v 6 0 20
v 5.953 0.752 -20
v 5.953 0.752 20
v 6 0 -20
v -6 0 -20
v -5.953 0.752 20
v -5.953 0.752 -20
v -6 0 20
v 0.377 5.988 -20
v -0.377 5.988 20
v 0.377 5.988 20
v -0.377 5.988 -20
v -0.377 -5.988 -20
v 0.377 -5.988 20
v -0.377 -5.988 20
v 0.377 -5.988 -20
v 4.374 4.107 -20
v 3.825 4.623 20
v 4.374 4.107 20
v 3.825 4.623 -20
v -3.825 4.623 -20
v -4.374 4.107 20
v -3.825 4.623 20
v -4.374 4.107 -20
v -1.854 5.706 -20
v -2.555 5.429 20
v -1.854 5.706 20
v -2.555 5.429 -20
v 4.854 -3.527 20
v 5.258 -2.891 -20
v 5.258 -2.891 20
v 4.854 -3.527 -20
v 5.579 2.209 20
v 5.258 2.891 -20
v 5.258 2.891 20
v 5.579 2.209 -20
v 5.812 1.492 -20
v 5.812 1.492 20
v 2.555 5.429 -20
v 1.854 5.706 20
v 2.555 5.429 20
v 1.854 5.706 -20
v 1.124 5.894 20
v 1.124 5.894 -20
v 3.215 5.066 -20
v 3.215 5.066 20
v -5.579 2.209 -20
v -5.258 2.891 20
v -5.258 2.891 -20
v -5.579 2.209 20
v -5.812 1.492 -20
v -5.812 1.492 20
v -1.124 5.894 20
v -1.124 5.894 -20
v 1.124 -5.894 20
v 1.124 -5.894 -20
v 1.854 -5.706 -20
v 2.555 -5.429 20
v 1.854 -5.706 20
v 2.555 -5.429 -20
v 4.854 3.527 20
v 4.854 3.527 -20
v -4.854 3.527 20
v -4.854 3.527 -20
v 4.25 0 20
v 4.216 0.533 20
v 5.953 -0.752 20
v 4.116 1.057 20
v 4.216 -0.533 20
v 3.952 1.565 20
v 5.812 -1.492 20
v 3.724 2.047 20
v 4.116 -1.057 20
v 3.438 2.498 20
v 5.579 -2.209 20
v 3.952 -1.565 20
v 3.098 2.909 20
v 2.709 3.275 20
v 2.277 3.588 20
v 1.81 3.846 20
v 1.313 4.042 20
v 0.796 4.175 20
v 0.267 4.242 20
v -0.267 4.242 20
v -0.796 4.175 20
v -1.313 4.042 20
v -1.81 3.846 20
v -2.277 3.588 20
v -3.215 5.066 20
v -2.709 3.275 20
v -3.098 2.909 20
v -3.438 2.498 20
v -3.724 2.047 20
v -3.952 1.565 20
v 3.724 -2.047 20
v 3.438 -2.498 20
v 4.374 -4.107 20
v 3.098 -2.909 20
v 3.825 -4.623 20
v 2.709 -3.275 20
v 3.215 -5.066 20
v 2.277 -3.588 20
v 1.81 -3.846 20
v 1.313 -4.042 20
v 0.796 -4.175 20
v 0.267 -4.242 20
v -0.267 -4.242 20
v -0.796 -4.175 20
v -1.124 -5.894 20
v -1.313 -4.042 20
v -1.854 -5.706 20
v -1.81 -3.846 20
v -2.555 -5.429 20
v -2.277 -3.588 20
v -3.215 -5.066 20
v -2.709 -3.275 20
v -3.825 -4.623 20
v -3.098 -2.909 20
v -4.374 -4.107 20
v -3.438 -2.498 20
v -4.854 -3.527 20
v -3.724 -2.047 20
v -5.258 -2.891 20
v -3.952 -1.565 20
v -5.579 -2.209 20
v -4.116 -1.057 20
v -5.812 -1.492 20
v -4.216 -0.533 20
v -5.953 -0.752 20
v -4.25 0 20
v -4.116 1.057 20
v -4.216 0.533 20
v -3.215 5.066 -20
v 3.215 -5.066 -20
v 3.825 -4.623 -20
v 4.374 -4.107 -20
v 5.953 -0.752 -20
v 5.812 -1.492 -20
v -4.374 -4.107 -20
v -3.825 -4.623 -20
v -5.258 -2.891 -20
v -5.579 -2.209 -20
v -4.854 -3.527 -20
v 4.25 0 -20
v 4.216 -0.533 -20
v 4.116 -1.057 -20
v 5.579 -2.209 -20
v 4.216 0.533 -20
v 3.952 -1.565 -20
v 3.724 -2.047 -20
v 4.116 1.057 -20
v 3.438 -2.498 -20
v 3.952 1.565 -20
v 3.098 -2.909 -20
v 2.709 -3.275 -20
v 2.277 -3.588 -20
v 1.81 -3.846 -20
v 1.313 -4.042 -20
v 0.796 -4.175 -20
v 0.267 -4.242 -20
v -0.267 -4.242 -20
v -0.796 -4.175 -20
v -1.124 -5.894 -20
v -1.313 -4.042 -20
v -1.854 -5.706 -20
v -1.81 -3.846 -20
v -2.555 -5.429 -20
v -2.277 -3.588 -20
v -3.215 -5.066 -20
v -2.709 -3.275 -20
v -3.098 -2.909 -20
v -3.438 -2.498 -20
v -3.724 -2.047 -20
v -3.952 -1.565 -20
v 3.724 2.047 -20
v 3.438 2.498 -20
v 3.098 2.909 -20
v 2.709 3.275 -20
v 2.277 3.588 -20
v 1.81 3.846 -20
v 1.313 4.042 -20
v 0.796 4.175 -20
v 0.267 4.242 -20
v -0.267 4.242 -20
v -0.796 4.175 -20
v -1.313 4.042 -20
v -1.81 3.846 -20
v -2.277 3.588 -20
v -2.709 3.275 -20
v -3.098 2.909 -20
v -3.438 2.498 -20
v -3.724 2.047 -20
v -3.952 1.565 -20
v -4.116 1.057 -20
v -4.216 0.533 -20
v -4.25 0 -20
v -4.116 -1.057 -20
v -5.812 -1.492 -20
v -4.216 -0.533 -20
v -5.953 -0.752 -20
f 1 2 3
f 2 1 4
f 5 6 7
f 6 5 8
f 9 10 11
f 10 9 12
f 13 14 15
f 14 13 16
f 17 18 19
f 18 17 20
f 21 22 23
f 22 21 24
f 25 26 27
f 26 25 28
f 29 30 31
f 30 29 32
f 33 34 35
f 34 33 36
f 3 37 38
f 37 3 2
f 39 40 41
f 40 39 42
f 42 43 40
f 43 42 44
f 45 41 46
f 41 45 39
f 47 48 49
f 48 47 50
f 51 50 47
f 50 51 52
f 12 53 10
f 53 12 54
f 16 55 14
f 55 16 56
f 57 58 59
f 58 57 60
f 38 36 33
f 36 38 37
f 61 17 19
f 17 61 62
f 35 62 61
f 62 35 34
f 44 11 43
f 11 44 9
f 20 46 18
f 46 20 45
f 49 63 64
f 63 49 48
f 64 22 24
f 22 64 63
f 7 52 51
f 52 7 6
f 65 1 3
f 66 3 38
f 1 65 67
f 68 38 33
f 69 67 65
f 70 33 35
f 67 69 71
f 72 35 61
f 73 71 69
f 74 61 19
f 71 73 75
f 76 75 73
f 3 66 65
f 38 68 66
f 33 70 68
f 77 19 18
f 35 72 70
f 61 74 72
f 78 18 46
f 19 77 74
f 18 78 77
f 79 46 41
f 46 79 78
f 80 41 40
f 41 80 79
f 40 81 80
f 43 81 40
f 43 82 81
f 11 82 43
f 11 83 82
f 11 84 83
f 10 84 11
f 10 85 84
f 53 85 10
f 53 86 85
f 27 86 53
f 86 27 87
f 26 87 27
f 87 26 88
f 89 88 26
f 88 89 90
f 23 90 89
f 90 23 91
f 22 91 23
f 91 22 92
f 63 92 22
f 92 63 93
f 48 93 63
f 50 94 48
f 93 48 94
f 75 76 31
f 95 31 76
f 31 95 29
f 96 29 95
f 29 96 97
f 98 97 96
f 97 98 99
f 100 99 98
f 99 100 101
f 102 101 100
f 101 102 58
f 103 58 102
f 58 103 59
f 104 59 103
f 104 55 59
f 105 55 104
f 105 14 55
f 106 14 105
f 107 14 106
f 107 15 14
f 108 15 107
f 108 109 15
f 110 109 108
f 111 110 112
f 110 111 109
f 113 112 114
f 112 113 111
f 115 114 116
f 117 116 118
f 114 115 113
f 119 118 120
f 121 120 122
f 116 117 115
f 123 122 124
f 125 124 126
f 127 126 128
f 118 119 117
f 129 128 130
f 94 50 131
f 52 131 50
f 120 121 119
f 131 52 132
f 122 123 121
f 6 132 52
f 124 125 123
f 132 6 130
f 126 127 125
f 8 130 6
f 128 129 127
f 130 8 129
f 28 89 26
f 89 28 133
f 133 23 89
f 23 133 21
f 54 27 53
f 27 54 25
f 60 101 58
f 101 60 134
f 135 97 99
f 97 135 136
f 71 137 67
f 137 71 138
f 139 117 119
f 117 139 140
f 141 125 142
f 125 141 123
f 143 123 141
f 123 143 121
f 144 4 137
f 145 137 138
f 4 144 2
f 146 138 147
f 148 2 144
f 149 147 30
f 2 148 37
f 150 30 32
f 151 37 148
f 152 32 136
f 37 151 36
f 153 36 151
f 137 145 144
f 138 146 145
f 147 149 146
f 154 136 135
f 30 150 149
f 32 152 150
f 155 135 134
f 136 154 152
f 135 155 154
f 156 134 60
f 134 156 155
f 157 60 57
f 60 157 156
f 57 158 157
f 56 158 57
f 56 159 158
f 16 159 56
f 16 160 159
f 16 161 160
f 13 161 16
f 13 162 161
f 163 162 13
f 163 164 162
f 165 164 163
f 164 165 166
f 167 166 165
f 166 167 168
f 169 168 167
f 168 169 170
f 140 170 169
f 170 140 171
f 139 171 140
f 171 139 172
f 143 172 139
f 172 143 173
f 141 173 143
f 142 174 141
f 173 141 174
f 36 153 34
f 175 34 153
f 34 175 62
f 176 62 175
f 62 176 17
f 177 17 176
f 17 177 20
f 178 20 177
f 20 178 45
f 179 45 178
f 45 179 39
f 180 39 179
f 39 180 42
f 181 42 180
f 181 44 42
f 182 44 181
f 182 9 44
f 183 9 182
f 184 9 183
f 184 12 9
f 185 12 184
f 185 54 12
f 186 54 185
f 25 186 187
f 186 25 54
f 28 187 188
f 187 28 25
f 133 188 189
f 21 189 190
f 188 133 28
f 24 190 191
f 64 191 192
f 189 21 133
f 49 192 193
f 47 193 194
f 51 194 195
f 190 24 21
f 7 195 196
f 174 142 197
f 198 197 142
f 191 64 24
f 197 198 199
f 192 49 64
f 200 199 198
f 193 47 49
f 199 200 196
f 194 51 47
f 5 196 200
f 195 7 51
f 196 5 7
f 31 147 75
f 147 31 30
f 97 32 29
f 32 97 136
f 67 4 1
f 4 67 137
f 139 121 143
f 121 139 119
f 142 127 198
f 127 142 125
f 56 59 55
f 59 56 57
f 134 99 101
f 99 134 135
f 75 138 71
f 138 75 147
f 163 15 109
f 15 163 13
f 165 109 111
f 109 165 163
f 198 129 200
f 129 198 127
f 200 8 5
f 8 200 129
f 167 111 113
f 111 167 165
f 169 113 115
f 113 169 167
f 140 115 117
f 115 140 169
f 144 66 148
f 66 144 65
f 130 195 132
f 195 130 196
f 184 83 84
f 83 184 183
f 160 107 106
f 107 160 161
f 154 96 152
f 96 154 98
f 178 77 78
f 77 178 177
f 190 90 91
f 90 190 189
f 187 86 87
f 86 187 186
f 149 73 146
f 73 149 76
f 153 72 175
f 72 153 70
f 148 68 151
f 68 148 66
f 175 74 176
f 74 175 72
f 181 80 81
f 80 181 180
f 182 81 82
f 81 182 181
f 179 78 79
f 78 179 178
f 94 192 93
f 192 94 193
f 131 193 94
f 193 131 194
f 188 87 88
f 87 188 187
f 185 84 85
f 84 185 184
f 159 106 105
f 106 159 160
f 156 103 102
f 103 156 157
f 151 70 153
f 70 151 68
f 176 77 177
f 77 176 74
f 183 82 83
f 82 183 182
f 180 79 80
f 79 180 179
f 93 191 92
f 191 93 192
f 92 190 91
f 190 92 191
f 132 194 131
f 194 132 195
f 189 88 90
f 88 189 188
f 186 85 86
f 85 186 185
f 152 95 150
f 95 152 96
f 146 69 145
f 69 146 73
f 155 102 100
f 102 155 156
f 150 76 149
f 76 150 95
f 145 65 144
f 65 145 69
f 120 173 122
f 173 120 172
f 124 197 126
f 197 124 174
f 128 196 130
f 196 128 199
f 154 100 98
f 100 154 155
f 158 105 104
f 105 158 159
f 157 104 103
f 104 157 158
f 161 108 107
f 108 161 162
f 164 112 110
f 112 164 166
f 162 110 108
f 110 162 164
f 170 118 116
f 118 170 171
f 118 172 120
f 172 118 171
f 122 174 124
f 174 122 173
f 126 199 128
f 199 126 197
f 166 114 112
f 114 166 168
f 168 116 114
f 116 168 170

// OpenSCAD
$fn = 50;


difference() {
	union() {
		translate(v = [0, 0, -20.0000000000]) {
			cylinder(h = 40, r = 6.0000000000);
		}
	}
	union() {
		translate(v = [0, 0, -100.0000000000]) {
			cylinder(h = 200, r = 4.2500000000);
		}
	}
}
